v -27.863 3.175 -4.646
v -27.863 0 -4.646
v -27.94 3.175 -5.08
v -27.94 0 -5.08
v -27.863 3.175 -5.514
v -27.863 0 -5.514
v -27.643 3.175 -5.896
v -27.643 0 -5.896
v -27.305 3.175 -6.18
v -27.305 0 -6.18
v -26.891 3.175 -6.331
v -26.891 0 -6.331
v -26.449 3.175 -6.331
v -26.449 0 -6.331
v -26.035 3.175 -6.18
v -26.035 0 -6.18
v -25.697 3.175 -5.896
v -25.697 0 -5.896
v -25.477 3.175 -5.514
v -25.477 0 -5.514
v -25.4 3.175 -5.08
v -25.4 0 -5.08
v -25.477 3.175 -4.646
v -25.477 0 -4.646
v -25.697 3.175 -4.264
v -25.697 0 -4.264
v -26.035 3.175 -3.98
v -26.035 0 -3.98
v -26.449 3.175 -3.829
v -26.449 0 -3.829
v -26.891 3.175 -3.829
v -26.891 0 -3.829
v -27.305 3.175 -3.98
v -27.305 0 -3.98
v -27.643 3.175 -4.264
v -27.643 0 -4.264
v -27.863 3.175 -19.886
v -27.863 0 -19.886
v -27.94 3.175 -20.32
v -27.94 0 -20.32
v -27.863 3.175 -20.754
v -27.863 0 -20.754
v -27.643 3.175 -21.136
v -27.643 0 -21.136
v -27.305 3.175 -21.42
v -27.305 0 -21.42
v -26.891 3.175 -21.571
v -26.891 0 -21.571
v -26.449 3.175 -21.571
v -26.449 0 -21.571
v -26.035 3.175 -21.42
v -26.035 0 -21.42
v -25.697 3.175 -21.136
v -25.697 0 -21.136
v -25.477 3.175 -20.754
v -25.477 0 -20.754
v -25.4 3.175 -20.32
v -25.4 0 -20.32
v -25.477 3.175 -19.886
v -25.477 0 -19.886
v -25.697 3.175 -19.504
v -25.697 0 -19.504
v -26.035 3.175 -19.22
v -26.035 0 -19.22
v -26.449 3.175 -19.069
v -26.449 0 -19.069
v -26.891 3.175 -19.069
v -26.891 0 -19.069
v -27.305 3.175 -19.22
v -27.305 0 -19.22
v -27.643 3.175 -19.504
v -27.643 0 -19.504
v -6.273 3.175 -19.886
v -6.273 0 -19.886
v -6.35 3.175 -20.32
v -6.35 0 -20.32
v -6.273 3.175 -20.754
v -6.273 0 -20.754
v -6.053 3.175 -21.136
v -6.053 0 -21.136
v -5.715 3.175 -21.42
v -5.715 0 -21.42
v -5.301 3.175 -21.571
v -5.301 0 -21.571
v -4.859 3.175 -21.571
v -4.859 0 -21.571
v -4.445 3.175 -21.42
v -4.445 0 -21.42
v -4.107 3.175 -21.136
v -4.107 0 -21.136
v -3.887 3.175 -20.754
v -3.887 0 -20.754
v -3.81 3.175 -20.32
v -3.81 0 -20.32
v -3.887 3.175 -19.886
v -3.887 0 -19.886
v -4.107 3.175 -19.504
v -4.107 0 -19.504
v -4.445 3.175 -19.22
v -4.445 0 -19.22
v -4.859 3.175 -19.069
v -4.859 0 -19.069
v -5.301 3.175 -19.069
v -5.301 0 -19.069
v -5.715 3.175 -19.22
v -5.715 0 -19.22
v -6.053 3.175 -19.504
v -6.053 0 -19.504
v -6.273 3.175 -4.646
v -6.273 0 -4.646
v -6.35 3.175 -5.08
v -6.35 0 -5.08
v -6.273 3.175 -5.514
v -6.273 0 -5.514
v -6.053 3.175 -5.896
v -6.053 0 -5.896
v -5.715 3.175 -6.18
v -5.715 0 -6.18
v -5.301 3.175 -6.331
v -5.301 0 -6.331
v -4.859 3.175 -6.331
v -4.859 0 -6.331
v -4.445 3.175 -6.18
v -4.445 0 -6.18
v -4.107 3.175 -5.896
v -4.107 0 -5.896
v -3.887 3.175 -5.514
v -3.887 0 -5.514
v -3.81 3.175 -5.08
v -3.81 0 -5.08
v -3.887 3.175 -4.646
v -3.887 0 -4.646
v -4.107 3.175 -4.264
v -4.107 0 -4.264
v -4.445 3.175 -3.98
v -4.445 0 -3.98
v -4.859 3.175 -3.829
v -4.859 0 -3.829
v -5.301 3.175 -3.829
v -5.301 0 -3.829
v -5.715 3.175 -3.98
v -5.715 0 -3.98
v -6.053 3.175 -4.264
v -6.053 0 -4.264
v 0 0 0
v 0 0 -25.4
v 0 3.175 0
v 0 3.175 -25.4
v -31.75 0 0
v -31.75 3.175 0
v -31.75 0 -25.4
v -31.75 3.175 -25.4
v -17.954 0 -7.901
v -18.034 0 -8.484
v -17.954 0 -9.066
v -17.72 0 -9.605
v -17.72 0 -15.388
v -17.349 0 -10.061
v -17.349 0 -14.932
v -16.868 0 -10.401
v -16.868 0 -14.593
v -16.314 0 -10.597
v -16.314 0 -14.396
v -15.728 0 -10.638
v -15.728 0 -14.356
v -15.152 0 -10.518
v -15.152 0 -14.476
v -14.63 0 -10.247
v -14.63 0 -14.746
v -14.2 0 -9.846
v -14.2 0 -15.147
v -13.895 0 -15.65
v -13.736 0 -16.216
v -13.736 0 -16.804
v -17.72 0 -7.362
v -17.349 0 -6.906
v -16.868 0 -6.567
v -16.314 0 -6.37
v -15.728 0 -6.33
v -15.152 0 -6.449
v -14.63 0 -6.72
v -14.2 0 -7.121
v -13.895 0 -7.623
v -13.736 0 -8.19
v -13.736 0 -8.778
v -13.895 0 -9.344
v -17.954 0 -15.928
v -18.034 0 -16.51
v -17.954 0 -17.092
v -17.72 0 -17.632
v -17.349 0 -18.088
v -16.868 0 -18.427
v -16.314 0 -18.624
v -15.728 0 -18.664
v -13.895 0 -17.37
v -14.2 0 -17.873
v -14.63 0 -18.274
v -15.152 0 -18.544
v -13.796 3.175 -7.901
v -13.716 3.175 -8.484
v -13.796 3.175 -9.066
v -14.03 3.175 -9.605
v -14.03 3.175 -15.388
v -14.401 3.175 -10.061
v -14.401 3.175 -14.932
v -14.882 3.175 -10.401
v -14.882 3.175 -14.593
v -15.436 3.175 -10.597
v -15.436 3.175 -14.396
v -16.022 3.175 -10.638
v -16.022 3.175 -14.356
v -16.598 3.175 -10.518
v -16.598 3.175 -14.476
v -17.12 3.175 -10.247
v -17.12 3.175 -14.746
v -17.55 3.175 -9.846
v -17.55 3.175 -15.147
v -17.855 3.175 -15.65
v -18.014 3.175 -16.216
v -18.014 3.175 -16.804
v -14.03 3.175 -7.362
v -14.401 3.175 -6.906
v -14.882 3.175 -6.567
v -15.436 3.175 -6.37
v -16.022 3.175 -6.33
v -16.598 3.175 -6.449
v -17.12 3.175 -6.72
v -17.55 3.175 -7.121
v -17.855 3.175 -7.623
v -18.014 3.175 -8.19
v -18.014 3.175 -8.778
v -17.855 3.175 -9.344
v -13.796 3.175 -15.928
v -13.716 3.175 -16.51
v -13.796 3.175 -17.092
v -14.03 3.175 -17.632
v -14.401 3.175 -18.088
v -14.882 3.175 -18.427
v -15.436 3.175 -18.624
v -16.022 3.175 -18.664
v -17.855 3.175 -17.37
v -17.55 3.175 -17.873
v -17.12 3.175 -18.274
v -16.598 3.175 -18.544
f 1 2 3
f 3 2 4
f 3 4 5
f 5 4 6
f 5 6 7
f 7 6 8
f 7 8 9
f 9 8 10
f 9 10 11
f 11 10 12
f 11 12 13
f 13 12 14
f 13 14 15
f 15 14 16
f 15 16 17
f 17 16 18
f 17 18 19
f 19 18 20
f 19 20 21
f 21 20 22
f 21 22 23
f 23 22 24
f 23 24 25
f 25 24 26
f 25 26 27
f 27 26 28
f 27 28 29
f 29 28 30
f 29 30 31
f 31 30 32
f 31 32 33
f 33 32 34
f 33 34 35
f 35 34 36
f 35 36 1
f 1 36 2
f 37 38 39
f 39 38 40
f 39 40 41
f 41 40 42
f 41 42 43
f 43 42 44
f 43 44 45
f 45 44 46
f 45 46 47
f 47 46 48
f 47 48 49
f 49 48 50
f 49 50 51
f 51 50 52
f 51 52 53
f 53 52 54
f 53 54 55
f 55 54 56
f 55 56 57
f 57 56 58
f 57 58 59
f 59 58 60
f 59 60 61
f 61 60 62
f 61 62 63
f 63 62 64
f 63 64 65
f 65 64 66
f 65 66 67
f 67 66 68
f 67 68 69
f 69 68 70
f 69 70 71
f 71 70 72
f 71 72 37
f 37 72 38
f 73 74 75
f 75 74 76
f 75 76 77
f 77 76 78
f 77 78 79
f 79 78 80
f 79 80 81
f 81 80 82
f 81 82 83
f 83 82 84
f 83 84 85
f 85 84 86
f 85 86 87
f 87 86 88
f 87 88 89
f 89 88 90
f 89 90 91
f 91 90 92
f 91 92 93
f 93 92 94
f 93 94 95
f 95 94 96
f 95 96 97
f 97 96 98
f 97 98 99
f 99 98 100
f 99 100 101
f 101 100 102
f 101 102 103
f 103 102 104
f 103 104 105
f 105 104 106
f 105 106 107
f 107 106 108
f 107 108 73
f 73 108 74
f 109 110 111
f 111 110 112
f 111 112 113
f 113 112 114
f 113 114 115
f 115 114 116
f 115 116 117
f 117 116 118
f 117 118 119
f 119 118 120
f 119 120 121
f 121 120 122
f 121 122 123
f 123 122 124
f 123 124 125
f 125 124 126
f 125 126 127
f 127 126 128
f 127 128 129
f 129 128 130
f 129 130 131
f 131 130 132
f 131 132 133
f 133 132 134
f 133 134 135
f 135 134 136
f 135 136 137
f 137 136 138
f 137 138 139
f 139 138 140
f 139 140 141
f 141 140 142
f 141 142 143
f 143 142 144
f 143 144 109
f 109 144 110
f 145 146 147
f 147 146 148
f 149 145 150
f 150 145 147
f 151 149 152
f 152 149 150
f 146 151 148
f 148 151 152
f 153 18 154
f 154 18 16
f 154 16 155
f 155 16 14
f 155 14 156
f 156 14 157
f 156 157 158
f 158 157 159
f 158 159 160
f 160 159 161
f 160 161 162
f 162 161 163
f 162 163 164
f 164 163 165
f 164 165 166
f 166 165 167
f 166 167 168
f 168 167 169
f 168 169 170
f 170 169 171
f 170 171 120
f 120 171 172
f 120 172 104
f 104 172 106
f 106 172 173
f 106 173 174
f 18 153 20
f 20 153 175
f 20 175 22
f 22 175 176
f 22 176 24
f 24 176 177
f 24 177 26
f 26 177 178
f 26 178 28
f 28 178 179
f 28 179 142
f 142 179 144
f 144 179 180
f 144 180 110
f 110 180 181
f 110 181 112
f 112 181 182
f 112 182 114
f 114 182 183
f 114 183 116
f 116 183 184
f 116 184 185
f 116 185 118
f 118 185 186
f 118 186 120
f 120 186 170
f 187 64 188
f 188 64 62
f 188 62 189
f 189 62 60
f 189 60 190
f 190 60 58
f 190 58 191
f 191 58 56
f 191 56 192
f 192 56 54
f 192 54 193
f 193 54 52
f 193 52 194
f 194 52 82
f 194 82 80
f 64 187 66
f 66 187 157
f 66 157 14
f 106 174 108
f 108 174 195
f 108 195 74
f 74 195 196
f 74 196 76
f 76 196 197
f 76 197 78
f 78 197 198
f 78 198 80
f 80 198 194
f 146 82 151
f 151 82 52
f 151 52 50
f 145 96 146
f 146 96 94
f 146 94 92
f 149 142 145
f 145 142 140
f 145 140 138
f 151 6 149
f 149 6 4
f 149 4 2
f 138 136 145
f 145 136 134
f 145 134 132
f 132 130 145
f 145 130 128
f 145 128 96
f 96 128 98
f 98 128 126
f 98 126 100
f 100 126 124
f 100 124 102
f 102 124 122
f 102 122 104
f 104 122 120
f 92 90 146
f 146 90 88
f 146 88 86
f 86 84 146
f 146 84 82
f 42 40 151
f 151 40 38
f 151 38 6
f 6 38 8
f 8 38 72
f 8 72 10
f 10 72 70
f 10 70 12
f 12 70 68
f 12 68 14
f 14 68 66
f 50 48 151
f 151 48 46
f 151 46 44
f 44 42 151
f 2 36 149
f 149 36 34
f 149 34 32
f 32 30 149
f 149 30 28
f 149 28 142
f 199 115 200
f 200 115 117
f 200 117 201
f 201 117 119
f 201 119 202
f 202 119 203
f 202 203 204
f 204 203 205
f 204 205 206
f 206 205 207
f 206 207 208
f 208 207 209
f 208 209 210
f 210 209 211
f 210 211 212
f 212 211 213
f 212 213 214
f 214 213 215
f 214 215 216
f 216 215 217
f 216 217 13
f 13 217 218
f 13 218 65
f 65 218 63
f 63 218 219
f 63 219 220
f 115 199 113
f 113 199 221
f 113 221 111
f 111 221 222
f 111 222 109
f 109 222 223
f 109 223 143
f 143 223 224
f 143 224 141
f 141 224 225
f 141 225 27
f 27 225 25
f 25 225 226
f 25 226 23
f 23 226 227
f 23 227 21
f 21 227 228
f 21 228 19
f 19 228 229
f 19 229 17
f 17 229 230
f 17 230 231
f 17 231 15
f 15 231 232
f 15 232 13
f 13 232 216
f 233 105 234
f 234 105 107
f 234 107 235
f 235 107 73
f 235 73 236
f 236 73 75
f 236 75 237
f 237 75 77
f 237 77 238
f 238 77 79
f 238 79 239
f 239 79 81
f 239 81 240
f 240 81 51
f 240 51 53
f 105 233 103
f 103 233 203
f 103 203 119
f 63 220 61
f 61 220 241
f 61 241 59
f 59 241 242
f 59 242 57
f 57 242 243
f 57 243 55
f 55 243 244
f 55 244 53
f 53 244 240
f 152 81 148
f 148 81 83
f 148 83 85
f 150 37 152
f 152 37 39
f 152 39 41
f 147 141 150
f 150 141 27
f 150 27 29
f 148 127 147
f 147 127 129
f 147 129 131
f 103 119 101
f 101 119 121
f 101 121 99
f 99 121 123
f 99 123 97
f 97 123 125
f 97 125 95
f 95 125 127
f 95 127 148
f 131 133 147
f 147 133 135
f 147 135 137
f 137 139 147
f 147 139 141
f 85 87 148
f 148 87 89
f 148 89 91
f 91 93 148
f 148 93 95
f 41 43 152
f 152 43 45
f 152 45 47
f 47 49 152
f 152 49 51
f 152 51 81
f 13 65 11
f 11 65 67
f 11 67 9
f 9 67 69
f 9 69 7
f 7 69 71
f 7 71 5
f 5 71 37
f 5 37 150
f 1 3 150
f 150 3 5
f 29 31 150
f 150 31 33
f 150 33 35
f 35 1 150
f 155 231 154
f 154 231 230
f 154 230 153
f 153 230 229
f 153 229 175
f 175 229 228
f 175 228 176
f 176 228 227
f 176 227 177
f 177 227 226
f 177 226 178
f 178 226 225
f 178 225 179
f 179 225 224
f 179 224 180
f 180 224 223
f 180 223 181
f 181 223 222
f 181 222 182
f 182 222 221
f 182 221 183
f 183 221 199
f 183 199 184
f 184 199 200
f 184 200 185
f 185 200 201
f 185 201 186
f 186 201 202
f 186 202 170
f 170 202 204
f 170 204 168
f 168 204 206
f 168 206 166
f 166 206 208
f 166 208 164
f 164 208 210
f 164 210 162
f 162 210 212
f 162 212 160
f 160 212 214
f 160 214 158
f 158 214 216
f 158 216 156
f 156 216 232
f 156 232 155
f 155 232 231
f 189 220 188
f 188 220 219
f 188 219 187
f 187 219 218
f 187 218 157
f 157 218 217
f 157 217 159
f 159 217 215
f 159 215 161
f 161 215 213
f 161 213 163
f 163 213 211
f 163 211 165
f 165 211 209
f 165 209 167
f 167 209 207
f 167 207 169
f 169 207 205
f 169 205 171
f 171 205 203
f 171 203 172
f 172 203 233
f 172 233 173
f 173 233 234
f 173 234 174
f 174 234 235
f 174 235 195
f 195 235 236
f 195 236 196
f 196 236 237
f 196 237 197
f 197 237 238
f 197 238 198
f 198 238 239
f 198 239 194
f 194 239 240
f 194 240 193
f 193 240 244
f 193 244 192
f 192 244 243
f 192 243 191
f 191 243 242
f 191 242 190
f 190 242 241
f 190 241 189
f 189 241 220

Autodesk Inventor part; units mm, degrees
ref_plane "YZ Plane" through (0, 0, 0) normal (1, 0, 0) x (0, 1, 0)
ref_plane "XZ Plane" through (0, 0, 0) normal (0, 1, 0) x (-1, 0, 0)
ref_plane "XY Plane" through (0, 0, 0) normal (0, 0, 1) x (1, 0, 0)
sketch "Sketch1" plane through (0, 0, 0) normal (0, 1, 0) x (-1, 0, 0)
  line L0 (0, 0) -> (31.75, 0)
  line L1 (31.75, 0) -> (31.75, -25.4)
  line L2 (31.75, -25.4) -> (0, -25.4)
  line L3 (0, -25.4) -> (0, 0)
  circle A0 centre (26.67, -5.08) radius 1.27
  circle A1 centre (26.67, -20.32) radius 1.27
  circle A2 centre (5.08, -20.32) radius 1.27
  circle A3 centre (5.08, -5.08) radius 1.27
  dimension "d0" = 31.75
  dimension "d1" = 25.4
  dimension "d2" = 2.54
  dimension "d3" = 2.54
  dimension "d4" = 2.54
  dimension "d5" = 2.54
  dimension "d6" = 15.24
  dimension "d7" = 21.59
  dimension "d8" = 0
  dimension "d9" = 0
  dimension "d10" = 0
  dimension "d11" = 0
  dimension "d12" = 5.08
  dimension "d13" = 5.08
extrude "Extrusion1" add sketch "Sketch1" along normal blind 3.175
sketch "Sketch2" plane through (0, 3.175, 0) normal (0, 1, 0) x (1, 0, 0)
  circle A0 centre (-15.875, 16.51) radius 2.159
  line L0 (0, 25.4) -> (-31.75, 25.4) projected
  circle A1 centre (-15.875, 8.4836) radius 2.159
  line L1 (0, 0) -> (0, 25.4) projected
  dimension "d16" = 4.318
  dimension "d17" = 8.89
  dimension "d18" = 4.318
  dimension "d19" = 8.0264
  dimension "d20" = 15.875
  dimension "d21" = 15.875
extrude "Extrusion2" cut sketch "Sketch2" against normal through all
properties part number "IMU Mount"
